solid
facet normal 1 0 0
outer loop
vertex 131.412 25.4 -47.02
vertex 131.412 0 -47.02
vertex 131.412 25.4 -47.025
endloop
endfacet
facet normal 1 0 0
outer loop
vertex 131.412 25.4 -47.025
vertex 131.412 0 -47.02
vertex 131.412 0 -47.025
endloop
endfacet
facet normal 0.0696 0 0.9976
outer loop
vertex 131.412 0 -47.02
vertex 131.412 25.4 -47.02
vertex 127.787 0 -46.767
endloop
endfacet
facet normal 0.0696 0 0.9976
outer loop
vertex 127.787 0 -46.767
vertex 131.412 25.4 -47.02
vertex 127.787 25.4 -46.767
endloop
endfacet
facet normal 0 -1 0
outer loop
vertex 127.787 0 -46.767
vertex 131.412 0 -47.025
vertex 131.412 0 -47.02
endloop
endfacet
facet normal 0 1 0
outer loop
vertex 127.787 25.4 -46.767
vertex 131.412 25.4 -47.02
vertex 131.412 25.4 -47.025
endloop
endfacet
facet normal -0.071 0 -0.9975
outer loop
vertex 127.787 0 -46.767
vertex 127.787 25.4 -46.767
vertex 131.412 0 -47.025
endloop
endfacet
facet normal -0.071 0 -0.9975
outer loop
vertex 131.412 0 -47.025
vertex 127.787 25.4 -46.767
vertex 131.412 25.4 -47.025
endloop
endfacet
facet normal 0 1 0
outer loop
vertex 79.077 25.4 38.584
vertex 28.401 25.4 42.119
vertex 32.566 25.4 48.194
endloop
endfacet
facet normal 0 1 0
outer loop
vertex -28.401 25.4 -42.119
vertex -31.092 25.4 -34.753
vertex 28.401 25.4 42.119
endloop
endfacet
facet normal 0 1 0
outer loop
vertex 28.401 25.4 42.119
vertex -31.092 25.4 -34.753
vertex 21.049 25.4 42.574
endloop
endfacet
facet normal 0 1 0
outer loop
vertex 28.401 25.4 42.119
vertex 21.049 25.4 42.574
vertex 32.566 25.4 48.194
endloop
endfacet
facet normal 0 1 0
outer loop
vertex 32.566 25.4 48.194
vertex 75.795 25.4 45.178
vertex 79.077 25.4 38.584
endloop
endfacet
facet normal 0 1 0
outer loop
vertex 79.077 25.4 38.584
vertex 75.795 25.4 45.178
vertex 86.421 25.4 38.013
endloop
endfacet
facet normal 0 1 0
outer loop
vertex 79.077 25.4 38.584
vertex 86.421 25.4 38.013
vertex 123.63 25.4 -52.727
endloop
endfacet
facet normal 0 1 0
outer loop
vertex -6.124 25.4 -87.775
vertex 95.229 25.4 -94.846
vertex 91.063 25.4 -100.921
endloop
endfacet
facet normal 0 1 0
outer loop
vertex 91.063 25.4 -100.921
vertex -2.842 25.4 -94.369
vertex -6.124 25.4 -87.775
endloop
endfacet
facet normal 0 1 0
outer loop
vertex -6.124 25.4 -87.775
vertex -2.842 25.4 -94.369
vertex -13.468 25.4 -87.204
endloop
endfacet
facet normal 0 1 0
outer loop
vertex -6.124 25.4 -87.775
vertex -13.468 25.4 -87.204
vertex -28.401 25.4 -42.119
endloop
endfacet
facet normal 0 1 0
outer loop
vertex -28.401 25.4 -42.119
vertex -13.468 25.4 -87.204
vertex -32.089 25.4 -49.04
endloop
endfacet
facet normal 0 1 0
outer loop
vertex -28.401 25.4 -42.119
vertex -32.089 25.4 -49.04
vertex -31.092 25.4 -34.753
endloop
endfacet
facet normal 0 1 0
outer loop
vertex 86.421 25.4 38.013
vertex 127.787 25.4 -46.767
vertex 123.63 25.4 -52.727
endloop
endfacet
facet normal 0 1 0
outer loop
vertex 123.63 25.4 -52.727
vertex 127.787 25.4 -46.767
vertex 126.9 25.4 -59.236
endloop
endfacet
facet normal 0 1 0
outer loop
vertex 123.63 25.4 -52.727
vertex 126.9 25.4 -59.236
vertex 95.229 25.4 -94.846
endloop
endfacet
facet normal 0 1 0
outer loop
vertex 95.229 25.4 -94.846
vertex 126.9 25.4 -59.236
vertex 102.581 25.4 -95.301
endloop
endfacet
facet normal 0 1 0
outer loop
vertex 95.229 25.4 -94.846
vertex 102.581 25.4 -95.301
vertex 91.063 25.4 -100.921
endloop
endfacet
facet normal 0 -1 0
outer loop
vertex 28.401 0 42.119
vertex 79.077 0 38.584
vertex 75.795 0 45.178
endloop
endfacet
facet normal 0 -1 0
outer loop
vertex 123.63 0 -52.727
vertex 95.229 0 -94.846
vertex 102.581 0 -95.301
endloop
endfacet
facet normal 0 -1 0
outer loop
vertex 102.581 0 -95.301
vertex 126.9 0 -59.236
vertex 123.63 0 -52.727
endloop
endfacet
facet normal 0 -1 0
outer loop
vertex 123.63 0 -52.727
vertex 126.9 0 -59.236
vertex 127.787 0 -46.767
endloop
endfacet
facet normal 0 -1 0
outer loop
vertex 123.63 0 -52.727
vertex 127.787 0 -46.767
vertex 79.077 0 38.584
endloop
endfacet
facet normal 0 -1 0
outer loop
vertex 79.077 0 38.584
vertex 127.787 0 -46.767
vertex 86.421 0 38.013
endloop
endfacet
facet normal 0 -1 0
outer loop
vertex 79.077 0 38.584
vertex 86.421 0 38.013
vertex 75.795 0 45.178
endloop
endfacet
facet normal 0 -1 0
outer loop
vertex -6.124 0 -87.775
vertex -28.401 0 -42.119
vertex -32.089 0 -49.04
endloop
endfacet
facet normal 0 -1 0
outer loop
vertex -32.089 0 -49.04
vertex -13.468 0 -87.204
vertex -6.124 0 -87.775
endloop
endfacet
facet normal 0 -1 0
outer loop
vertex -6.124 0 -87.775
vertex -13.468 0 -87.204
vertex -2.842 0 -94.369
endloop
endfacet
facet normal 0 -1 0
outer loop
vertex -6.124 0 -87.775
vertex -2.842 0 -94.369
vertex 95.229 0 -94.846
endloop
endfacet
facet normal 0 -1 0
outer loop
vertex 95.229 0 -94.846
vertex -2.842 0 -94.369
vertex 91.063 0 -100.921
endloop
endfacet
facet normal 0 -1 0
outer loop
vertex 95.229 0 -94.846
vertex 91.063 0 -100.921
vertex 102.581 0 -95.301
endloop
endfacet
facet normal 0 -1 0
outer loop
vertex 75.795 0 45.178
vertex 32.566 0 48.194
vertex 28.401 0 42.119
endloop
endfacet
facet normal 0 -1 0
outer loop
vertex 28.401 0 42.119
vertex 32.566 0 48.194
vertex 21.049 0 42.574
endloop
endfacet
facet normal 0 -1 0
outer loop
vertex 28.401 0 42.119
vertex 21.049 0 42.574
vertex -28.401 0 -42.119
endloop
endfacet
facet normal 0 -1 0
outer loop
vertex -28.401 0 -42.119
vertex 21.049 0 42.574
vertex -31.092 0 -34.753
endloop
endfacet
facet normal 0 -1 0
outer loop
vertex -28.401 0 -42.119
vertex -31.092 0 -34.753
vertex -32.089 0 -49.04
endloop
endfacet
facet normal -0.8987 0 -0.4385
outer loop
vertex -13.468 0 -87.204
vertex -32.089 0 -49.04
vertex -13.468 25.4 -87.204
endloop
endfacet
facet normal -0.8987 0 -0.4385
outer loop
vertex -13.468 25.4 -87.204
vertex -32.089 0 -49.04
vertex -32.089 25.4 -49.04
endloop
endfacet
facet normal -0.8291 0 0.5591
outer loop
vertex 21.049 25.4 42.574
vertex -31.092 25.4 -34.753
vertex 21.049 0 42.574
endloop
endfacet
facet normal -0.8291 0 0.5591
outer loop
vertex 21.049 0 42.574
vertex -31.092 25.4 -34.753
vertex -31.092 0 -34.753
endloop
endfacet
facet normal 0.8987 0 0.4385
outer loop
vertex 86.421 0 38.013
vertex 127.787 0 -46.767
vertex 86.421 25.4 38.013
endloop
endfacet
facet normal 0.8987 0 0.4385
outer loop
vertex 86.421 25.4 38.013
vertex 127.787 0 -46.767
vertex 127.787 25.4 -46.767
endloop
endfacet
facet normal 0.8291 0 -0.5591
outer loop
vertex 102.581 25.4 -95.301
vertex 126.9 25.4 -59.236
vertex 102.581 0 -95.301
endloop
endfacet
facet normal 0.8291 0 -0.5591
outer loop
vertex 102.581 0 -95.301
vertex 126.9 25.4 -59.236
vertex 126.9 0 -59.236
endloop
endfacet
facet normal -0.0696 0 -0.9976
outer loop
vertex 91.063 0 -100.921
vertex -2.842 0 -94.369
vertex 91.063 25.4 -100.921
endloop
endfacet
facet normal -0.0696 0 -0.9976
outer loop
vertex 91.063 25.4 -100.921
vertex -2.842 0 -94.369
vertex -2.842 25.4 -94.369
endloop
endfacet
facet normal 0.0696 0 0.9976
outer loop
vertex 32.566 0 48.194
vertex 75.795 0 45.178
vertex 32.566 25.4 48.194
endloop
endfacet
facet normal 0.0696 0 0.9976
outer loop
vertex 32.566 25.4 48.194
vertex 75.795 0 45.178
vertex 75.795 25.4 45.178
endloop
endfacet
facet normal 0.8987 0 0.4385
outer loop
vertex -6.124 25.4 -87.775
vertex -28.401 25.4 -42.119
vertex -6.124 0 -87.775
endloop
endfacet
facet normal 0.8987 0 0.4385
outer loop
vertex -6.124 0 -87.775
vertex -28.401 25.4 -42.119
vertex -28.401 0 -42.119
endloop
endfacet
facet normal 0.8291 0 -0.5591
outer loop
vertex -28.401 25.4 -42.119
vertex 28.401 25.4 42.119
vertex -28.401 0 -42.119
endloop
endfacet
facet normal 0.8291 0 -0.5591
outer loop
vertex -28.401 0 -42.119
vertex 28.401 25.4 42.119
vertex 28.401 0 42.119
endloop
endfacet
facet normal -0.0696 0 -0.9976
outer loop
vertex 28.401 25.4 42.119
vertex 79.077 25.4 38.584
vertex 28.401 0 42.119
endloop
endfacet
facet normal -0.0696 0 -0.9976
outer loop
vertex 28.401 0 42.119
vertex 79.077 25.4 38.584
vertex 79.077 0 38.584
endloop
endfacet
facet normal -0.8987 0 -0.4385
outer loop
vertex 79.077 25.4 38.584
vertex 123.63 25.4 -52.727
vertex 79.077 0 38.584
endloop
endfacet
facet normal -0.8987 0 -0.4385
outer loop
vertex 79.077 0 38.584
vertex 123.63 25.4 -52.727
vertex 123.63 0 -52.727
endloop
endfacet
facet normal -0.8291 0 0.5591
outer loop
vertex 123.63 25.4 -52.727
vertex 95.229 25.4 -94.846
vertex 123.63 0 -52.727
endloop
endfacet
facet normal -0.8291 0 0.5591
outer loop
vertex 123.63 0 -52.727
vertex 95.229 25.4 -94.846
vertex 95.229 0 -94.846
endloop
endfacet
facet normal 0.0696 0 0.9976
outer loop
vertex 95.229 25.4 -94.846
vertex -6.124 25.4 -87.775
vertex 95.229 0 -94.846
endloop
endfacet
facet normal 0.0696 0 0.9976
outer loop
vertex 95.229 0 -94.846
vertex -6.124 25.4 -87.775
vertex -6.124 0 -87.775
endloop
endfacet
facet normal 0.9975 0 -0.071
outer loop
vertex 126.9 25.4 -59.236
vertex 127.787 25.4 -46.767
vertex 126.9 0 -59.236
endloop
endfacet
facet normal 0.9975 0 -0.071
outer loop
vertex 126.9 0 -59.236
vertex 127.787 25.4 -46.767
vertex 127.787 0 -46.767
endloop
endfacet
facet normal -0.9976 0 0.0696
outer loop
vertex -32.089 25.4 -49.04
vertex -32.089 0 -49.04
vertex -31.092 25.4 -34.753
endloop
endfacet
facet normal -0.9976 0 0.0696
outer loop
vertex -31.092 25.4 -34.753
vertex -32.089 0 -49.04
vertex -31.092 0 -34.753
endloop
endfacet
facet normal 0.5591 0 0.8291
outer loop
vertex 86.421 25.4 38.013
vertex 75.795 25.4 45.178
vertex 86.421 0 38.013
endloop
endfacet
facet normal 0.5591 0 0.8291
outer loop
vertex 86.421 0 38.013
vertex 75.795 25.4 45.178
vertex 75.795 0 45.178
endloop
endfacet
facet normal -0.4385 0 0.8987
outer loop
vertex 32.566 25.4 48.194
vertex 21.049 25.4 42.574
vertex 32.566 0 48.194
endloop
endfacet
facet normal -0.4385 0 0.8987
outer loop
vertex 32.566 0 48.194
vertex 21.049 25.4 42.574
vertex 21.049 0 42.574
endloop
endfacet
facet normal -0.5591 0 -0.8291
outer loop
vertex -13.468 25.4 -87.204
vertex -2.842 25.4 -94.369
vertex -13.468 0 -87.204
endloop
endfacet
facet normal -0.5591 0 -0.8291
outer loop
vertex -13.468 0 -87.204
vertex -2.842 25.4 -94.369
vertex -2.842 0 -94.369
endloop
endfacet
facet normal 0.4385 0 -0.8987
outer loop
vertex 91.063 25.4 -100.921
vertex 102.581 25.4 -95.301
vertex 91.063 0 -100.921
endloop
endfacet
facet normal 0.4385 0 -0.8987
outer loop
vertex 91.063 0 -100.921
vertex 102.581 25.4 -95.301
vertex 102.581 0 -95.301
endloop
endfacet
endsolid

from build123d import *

# Parameters (mm, degrees)
BOSS_EXTRUDE1_DEPTH = 25.4
BOSS_EXTRUDE2_DEPTH = 25.4
SKETCH3_R           = 2
BOSS_EXTRUDE3_DEPTH = 5
CUT_EXTRUDE1_DEPTH  = 25.4
CUT_EXTRUDE7_DEPTH  = 25.4
CUT_EXTRUDE8_DEPTH  = 25.4


with BuildPart() as part:
    # Sketch1 → Boss-Extrude1 (new body)
    with BuildSketch(Plane(origin=(0, 0, 0), x_dir=(1, 0, 0), z_dir=(0, 1, 0))):
        Polygon((83.176569024, -44.663089882), (25.185203896, -48.709261314), (-35.715075295, 41.609133969), (-10.223479979, 93.854215086), (98.44468436, 101.436206322), (130.944454172, 53.237296637), align=None)
        Polygon((28.400509379, -42.119485598), (-28.400509379, 42.119485598), (-6.124219546, 87.774790999), (95.229378877, 94.846430606), (123.629888256, 52.726945008), (79.07730859, -38.583665795), align=None, mode=Mode.SUBTRACT)
    extrude(amount=BOSS_EXTRUDE1_DEPTH)

    # Sketch2 → Boss-Extrude2 (add)
    with BuildSketch(Plane(origin=(0, 25.4, 0), x_dir=(1, 0, 0), z_dir=(0, 1, 0))):
        Polygon((123.193813482, 58.976945008), (124.063847882, 46.507260162), (131.411983768, 47.019954034), (130.541949367, 59.489638879), align=None)
    extrude(amount=-BOSS_EXTRUDE2_DEPTH)

    # Sketch3 → Boss-Extrude3 (add)
    with BuildSketch(Plane(origin=(134.040133914, 0, -9.35224338), x_dir=(-0.06960275203236939, 0, -0.9975747876272337), z_dir=(0.9975747876272337, 0, -0.06960275203236939))):
        with Locations(Location((41.009284939, 23.4, 0), (0, 0, 90))):
            Circle(SKETCH3_R)
        with Locations(Location((47.009284939, 23.4, 0), (0, 0, 180))):
            Circle(SKETCH3_R)
    extrude(amount=BOSS_EXTRUDE3_DEPTH)

    # Sketch4 → Cut-Extrude1 (cut)
    with BuildSketch(Plane(origin=(0, 25.4, 0), x_dir=(1, 0, 0), z_dir=(0, 1, 0))):
        Polygon((126.899940216, 59.235528748), (127.787477079, 46.767065084), (139.380441548, 47.592281694), (138.492904685, 60.060745358), align=None)
    extrude(amount=-CUT_EXTRUDE1_DEPTH, mode=Mode.SUBTRACT)


with BuildPart() as cut_extrude1_piece_1:
    # of the separate pieces the step leaves, piece 1, a body of its own (cut_extrude1_pieces)
    add(part.part.solids().sort_by_distance((83.176569024, 0, 44.663089882))[0])

    # Sketch5 → Cut-Extrude7 (cut)
    with BuildSketch(Plane(origin=(0, 25.4, 0), x_dir=(1, 0, 0), z_dir=(0, 1, 0))):
        Polygon((-31.092418985, 34.753485598), (-32.089237801, 49.040295952), (-35.715075295, 41.609133969), align=None)
    extrude(amount=-CUT_EXTRUDE7_DEPTH, mode=Mode.SUBTRACT)

    # Sketch7 → Cut-Extrude8 (cut)
    with BuildSketch(Plane(origin=(0, 25.4, 0), x_dir=(1, 0, 0), z_dir=(0, 1, 0))):
        Polygon((75.795317069, -45.178094326), (86.421188069, -38.013235955), (83.176569024, -44.663089882), align=None)
        Polygon((21.048570986, -42.574411832), (25.185203896, -48.709261314), (32.56645585, -48.194256869), align=None)
        Polygon((-10.223479979, 93.854215086), (-2.842228025, 94.369219531), (-13.468099024, 87.20436116), align=None)
        Polygon((91.063432406, 100.921201877), (98.44468436, 101.436206322), (102.581317269, 95.30135684), align=None)
    extrude(amount=-CUT_EXTRUDE8_DEPTH, mode=Mode.SUBTRACT)


with BuildPart() as cut_extrude1_piece_2:
    # of the separate pieces the step leaves, piece 2, a body of its own (cut_extrude1_pieces)
    add(part.part.solids().sort_by_distance((131.411983768, 25.4, -47.019954034))[0])


solid = Compound([cut_extrude1_piece_1.part, cut_extrude1_piece_2.part])
